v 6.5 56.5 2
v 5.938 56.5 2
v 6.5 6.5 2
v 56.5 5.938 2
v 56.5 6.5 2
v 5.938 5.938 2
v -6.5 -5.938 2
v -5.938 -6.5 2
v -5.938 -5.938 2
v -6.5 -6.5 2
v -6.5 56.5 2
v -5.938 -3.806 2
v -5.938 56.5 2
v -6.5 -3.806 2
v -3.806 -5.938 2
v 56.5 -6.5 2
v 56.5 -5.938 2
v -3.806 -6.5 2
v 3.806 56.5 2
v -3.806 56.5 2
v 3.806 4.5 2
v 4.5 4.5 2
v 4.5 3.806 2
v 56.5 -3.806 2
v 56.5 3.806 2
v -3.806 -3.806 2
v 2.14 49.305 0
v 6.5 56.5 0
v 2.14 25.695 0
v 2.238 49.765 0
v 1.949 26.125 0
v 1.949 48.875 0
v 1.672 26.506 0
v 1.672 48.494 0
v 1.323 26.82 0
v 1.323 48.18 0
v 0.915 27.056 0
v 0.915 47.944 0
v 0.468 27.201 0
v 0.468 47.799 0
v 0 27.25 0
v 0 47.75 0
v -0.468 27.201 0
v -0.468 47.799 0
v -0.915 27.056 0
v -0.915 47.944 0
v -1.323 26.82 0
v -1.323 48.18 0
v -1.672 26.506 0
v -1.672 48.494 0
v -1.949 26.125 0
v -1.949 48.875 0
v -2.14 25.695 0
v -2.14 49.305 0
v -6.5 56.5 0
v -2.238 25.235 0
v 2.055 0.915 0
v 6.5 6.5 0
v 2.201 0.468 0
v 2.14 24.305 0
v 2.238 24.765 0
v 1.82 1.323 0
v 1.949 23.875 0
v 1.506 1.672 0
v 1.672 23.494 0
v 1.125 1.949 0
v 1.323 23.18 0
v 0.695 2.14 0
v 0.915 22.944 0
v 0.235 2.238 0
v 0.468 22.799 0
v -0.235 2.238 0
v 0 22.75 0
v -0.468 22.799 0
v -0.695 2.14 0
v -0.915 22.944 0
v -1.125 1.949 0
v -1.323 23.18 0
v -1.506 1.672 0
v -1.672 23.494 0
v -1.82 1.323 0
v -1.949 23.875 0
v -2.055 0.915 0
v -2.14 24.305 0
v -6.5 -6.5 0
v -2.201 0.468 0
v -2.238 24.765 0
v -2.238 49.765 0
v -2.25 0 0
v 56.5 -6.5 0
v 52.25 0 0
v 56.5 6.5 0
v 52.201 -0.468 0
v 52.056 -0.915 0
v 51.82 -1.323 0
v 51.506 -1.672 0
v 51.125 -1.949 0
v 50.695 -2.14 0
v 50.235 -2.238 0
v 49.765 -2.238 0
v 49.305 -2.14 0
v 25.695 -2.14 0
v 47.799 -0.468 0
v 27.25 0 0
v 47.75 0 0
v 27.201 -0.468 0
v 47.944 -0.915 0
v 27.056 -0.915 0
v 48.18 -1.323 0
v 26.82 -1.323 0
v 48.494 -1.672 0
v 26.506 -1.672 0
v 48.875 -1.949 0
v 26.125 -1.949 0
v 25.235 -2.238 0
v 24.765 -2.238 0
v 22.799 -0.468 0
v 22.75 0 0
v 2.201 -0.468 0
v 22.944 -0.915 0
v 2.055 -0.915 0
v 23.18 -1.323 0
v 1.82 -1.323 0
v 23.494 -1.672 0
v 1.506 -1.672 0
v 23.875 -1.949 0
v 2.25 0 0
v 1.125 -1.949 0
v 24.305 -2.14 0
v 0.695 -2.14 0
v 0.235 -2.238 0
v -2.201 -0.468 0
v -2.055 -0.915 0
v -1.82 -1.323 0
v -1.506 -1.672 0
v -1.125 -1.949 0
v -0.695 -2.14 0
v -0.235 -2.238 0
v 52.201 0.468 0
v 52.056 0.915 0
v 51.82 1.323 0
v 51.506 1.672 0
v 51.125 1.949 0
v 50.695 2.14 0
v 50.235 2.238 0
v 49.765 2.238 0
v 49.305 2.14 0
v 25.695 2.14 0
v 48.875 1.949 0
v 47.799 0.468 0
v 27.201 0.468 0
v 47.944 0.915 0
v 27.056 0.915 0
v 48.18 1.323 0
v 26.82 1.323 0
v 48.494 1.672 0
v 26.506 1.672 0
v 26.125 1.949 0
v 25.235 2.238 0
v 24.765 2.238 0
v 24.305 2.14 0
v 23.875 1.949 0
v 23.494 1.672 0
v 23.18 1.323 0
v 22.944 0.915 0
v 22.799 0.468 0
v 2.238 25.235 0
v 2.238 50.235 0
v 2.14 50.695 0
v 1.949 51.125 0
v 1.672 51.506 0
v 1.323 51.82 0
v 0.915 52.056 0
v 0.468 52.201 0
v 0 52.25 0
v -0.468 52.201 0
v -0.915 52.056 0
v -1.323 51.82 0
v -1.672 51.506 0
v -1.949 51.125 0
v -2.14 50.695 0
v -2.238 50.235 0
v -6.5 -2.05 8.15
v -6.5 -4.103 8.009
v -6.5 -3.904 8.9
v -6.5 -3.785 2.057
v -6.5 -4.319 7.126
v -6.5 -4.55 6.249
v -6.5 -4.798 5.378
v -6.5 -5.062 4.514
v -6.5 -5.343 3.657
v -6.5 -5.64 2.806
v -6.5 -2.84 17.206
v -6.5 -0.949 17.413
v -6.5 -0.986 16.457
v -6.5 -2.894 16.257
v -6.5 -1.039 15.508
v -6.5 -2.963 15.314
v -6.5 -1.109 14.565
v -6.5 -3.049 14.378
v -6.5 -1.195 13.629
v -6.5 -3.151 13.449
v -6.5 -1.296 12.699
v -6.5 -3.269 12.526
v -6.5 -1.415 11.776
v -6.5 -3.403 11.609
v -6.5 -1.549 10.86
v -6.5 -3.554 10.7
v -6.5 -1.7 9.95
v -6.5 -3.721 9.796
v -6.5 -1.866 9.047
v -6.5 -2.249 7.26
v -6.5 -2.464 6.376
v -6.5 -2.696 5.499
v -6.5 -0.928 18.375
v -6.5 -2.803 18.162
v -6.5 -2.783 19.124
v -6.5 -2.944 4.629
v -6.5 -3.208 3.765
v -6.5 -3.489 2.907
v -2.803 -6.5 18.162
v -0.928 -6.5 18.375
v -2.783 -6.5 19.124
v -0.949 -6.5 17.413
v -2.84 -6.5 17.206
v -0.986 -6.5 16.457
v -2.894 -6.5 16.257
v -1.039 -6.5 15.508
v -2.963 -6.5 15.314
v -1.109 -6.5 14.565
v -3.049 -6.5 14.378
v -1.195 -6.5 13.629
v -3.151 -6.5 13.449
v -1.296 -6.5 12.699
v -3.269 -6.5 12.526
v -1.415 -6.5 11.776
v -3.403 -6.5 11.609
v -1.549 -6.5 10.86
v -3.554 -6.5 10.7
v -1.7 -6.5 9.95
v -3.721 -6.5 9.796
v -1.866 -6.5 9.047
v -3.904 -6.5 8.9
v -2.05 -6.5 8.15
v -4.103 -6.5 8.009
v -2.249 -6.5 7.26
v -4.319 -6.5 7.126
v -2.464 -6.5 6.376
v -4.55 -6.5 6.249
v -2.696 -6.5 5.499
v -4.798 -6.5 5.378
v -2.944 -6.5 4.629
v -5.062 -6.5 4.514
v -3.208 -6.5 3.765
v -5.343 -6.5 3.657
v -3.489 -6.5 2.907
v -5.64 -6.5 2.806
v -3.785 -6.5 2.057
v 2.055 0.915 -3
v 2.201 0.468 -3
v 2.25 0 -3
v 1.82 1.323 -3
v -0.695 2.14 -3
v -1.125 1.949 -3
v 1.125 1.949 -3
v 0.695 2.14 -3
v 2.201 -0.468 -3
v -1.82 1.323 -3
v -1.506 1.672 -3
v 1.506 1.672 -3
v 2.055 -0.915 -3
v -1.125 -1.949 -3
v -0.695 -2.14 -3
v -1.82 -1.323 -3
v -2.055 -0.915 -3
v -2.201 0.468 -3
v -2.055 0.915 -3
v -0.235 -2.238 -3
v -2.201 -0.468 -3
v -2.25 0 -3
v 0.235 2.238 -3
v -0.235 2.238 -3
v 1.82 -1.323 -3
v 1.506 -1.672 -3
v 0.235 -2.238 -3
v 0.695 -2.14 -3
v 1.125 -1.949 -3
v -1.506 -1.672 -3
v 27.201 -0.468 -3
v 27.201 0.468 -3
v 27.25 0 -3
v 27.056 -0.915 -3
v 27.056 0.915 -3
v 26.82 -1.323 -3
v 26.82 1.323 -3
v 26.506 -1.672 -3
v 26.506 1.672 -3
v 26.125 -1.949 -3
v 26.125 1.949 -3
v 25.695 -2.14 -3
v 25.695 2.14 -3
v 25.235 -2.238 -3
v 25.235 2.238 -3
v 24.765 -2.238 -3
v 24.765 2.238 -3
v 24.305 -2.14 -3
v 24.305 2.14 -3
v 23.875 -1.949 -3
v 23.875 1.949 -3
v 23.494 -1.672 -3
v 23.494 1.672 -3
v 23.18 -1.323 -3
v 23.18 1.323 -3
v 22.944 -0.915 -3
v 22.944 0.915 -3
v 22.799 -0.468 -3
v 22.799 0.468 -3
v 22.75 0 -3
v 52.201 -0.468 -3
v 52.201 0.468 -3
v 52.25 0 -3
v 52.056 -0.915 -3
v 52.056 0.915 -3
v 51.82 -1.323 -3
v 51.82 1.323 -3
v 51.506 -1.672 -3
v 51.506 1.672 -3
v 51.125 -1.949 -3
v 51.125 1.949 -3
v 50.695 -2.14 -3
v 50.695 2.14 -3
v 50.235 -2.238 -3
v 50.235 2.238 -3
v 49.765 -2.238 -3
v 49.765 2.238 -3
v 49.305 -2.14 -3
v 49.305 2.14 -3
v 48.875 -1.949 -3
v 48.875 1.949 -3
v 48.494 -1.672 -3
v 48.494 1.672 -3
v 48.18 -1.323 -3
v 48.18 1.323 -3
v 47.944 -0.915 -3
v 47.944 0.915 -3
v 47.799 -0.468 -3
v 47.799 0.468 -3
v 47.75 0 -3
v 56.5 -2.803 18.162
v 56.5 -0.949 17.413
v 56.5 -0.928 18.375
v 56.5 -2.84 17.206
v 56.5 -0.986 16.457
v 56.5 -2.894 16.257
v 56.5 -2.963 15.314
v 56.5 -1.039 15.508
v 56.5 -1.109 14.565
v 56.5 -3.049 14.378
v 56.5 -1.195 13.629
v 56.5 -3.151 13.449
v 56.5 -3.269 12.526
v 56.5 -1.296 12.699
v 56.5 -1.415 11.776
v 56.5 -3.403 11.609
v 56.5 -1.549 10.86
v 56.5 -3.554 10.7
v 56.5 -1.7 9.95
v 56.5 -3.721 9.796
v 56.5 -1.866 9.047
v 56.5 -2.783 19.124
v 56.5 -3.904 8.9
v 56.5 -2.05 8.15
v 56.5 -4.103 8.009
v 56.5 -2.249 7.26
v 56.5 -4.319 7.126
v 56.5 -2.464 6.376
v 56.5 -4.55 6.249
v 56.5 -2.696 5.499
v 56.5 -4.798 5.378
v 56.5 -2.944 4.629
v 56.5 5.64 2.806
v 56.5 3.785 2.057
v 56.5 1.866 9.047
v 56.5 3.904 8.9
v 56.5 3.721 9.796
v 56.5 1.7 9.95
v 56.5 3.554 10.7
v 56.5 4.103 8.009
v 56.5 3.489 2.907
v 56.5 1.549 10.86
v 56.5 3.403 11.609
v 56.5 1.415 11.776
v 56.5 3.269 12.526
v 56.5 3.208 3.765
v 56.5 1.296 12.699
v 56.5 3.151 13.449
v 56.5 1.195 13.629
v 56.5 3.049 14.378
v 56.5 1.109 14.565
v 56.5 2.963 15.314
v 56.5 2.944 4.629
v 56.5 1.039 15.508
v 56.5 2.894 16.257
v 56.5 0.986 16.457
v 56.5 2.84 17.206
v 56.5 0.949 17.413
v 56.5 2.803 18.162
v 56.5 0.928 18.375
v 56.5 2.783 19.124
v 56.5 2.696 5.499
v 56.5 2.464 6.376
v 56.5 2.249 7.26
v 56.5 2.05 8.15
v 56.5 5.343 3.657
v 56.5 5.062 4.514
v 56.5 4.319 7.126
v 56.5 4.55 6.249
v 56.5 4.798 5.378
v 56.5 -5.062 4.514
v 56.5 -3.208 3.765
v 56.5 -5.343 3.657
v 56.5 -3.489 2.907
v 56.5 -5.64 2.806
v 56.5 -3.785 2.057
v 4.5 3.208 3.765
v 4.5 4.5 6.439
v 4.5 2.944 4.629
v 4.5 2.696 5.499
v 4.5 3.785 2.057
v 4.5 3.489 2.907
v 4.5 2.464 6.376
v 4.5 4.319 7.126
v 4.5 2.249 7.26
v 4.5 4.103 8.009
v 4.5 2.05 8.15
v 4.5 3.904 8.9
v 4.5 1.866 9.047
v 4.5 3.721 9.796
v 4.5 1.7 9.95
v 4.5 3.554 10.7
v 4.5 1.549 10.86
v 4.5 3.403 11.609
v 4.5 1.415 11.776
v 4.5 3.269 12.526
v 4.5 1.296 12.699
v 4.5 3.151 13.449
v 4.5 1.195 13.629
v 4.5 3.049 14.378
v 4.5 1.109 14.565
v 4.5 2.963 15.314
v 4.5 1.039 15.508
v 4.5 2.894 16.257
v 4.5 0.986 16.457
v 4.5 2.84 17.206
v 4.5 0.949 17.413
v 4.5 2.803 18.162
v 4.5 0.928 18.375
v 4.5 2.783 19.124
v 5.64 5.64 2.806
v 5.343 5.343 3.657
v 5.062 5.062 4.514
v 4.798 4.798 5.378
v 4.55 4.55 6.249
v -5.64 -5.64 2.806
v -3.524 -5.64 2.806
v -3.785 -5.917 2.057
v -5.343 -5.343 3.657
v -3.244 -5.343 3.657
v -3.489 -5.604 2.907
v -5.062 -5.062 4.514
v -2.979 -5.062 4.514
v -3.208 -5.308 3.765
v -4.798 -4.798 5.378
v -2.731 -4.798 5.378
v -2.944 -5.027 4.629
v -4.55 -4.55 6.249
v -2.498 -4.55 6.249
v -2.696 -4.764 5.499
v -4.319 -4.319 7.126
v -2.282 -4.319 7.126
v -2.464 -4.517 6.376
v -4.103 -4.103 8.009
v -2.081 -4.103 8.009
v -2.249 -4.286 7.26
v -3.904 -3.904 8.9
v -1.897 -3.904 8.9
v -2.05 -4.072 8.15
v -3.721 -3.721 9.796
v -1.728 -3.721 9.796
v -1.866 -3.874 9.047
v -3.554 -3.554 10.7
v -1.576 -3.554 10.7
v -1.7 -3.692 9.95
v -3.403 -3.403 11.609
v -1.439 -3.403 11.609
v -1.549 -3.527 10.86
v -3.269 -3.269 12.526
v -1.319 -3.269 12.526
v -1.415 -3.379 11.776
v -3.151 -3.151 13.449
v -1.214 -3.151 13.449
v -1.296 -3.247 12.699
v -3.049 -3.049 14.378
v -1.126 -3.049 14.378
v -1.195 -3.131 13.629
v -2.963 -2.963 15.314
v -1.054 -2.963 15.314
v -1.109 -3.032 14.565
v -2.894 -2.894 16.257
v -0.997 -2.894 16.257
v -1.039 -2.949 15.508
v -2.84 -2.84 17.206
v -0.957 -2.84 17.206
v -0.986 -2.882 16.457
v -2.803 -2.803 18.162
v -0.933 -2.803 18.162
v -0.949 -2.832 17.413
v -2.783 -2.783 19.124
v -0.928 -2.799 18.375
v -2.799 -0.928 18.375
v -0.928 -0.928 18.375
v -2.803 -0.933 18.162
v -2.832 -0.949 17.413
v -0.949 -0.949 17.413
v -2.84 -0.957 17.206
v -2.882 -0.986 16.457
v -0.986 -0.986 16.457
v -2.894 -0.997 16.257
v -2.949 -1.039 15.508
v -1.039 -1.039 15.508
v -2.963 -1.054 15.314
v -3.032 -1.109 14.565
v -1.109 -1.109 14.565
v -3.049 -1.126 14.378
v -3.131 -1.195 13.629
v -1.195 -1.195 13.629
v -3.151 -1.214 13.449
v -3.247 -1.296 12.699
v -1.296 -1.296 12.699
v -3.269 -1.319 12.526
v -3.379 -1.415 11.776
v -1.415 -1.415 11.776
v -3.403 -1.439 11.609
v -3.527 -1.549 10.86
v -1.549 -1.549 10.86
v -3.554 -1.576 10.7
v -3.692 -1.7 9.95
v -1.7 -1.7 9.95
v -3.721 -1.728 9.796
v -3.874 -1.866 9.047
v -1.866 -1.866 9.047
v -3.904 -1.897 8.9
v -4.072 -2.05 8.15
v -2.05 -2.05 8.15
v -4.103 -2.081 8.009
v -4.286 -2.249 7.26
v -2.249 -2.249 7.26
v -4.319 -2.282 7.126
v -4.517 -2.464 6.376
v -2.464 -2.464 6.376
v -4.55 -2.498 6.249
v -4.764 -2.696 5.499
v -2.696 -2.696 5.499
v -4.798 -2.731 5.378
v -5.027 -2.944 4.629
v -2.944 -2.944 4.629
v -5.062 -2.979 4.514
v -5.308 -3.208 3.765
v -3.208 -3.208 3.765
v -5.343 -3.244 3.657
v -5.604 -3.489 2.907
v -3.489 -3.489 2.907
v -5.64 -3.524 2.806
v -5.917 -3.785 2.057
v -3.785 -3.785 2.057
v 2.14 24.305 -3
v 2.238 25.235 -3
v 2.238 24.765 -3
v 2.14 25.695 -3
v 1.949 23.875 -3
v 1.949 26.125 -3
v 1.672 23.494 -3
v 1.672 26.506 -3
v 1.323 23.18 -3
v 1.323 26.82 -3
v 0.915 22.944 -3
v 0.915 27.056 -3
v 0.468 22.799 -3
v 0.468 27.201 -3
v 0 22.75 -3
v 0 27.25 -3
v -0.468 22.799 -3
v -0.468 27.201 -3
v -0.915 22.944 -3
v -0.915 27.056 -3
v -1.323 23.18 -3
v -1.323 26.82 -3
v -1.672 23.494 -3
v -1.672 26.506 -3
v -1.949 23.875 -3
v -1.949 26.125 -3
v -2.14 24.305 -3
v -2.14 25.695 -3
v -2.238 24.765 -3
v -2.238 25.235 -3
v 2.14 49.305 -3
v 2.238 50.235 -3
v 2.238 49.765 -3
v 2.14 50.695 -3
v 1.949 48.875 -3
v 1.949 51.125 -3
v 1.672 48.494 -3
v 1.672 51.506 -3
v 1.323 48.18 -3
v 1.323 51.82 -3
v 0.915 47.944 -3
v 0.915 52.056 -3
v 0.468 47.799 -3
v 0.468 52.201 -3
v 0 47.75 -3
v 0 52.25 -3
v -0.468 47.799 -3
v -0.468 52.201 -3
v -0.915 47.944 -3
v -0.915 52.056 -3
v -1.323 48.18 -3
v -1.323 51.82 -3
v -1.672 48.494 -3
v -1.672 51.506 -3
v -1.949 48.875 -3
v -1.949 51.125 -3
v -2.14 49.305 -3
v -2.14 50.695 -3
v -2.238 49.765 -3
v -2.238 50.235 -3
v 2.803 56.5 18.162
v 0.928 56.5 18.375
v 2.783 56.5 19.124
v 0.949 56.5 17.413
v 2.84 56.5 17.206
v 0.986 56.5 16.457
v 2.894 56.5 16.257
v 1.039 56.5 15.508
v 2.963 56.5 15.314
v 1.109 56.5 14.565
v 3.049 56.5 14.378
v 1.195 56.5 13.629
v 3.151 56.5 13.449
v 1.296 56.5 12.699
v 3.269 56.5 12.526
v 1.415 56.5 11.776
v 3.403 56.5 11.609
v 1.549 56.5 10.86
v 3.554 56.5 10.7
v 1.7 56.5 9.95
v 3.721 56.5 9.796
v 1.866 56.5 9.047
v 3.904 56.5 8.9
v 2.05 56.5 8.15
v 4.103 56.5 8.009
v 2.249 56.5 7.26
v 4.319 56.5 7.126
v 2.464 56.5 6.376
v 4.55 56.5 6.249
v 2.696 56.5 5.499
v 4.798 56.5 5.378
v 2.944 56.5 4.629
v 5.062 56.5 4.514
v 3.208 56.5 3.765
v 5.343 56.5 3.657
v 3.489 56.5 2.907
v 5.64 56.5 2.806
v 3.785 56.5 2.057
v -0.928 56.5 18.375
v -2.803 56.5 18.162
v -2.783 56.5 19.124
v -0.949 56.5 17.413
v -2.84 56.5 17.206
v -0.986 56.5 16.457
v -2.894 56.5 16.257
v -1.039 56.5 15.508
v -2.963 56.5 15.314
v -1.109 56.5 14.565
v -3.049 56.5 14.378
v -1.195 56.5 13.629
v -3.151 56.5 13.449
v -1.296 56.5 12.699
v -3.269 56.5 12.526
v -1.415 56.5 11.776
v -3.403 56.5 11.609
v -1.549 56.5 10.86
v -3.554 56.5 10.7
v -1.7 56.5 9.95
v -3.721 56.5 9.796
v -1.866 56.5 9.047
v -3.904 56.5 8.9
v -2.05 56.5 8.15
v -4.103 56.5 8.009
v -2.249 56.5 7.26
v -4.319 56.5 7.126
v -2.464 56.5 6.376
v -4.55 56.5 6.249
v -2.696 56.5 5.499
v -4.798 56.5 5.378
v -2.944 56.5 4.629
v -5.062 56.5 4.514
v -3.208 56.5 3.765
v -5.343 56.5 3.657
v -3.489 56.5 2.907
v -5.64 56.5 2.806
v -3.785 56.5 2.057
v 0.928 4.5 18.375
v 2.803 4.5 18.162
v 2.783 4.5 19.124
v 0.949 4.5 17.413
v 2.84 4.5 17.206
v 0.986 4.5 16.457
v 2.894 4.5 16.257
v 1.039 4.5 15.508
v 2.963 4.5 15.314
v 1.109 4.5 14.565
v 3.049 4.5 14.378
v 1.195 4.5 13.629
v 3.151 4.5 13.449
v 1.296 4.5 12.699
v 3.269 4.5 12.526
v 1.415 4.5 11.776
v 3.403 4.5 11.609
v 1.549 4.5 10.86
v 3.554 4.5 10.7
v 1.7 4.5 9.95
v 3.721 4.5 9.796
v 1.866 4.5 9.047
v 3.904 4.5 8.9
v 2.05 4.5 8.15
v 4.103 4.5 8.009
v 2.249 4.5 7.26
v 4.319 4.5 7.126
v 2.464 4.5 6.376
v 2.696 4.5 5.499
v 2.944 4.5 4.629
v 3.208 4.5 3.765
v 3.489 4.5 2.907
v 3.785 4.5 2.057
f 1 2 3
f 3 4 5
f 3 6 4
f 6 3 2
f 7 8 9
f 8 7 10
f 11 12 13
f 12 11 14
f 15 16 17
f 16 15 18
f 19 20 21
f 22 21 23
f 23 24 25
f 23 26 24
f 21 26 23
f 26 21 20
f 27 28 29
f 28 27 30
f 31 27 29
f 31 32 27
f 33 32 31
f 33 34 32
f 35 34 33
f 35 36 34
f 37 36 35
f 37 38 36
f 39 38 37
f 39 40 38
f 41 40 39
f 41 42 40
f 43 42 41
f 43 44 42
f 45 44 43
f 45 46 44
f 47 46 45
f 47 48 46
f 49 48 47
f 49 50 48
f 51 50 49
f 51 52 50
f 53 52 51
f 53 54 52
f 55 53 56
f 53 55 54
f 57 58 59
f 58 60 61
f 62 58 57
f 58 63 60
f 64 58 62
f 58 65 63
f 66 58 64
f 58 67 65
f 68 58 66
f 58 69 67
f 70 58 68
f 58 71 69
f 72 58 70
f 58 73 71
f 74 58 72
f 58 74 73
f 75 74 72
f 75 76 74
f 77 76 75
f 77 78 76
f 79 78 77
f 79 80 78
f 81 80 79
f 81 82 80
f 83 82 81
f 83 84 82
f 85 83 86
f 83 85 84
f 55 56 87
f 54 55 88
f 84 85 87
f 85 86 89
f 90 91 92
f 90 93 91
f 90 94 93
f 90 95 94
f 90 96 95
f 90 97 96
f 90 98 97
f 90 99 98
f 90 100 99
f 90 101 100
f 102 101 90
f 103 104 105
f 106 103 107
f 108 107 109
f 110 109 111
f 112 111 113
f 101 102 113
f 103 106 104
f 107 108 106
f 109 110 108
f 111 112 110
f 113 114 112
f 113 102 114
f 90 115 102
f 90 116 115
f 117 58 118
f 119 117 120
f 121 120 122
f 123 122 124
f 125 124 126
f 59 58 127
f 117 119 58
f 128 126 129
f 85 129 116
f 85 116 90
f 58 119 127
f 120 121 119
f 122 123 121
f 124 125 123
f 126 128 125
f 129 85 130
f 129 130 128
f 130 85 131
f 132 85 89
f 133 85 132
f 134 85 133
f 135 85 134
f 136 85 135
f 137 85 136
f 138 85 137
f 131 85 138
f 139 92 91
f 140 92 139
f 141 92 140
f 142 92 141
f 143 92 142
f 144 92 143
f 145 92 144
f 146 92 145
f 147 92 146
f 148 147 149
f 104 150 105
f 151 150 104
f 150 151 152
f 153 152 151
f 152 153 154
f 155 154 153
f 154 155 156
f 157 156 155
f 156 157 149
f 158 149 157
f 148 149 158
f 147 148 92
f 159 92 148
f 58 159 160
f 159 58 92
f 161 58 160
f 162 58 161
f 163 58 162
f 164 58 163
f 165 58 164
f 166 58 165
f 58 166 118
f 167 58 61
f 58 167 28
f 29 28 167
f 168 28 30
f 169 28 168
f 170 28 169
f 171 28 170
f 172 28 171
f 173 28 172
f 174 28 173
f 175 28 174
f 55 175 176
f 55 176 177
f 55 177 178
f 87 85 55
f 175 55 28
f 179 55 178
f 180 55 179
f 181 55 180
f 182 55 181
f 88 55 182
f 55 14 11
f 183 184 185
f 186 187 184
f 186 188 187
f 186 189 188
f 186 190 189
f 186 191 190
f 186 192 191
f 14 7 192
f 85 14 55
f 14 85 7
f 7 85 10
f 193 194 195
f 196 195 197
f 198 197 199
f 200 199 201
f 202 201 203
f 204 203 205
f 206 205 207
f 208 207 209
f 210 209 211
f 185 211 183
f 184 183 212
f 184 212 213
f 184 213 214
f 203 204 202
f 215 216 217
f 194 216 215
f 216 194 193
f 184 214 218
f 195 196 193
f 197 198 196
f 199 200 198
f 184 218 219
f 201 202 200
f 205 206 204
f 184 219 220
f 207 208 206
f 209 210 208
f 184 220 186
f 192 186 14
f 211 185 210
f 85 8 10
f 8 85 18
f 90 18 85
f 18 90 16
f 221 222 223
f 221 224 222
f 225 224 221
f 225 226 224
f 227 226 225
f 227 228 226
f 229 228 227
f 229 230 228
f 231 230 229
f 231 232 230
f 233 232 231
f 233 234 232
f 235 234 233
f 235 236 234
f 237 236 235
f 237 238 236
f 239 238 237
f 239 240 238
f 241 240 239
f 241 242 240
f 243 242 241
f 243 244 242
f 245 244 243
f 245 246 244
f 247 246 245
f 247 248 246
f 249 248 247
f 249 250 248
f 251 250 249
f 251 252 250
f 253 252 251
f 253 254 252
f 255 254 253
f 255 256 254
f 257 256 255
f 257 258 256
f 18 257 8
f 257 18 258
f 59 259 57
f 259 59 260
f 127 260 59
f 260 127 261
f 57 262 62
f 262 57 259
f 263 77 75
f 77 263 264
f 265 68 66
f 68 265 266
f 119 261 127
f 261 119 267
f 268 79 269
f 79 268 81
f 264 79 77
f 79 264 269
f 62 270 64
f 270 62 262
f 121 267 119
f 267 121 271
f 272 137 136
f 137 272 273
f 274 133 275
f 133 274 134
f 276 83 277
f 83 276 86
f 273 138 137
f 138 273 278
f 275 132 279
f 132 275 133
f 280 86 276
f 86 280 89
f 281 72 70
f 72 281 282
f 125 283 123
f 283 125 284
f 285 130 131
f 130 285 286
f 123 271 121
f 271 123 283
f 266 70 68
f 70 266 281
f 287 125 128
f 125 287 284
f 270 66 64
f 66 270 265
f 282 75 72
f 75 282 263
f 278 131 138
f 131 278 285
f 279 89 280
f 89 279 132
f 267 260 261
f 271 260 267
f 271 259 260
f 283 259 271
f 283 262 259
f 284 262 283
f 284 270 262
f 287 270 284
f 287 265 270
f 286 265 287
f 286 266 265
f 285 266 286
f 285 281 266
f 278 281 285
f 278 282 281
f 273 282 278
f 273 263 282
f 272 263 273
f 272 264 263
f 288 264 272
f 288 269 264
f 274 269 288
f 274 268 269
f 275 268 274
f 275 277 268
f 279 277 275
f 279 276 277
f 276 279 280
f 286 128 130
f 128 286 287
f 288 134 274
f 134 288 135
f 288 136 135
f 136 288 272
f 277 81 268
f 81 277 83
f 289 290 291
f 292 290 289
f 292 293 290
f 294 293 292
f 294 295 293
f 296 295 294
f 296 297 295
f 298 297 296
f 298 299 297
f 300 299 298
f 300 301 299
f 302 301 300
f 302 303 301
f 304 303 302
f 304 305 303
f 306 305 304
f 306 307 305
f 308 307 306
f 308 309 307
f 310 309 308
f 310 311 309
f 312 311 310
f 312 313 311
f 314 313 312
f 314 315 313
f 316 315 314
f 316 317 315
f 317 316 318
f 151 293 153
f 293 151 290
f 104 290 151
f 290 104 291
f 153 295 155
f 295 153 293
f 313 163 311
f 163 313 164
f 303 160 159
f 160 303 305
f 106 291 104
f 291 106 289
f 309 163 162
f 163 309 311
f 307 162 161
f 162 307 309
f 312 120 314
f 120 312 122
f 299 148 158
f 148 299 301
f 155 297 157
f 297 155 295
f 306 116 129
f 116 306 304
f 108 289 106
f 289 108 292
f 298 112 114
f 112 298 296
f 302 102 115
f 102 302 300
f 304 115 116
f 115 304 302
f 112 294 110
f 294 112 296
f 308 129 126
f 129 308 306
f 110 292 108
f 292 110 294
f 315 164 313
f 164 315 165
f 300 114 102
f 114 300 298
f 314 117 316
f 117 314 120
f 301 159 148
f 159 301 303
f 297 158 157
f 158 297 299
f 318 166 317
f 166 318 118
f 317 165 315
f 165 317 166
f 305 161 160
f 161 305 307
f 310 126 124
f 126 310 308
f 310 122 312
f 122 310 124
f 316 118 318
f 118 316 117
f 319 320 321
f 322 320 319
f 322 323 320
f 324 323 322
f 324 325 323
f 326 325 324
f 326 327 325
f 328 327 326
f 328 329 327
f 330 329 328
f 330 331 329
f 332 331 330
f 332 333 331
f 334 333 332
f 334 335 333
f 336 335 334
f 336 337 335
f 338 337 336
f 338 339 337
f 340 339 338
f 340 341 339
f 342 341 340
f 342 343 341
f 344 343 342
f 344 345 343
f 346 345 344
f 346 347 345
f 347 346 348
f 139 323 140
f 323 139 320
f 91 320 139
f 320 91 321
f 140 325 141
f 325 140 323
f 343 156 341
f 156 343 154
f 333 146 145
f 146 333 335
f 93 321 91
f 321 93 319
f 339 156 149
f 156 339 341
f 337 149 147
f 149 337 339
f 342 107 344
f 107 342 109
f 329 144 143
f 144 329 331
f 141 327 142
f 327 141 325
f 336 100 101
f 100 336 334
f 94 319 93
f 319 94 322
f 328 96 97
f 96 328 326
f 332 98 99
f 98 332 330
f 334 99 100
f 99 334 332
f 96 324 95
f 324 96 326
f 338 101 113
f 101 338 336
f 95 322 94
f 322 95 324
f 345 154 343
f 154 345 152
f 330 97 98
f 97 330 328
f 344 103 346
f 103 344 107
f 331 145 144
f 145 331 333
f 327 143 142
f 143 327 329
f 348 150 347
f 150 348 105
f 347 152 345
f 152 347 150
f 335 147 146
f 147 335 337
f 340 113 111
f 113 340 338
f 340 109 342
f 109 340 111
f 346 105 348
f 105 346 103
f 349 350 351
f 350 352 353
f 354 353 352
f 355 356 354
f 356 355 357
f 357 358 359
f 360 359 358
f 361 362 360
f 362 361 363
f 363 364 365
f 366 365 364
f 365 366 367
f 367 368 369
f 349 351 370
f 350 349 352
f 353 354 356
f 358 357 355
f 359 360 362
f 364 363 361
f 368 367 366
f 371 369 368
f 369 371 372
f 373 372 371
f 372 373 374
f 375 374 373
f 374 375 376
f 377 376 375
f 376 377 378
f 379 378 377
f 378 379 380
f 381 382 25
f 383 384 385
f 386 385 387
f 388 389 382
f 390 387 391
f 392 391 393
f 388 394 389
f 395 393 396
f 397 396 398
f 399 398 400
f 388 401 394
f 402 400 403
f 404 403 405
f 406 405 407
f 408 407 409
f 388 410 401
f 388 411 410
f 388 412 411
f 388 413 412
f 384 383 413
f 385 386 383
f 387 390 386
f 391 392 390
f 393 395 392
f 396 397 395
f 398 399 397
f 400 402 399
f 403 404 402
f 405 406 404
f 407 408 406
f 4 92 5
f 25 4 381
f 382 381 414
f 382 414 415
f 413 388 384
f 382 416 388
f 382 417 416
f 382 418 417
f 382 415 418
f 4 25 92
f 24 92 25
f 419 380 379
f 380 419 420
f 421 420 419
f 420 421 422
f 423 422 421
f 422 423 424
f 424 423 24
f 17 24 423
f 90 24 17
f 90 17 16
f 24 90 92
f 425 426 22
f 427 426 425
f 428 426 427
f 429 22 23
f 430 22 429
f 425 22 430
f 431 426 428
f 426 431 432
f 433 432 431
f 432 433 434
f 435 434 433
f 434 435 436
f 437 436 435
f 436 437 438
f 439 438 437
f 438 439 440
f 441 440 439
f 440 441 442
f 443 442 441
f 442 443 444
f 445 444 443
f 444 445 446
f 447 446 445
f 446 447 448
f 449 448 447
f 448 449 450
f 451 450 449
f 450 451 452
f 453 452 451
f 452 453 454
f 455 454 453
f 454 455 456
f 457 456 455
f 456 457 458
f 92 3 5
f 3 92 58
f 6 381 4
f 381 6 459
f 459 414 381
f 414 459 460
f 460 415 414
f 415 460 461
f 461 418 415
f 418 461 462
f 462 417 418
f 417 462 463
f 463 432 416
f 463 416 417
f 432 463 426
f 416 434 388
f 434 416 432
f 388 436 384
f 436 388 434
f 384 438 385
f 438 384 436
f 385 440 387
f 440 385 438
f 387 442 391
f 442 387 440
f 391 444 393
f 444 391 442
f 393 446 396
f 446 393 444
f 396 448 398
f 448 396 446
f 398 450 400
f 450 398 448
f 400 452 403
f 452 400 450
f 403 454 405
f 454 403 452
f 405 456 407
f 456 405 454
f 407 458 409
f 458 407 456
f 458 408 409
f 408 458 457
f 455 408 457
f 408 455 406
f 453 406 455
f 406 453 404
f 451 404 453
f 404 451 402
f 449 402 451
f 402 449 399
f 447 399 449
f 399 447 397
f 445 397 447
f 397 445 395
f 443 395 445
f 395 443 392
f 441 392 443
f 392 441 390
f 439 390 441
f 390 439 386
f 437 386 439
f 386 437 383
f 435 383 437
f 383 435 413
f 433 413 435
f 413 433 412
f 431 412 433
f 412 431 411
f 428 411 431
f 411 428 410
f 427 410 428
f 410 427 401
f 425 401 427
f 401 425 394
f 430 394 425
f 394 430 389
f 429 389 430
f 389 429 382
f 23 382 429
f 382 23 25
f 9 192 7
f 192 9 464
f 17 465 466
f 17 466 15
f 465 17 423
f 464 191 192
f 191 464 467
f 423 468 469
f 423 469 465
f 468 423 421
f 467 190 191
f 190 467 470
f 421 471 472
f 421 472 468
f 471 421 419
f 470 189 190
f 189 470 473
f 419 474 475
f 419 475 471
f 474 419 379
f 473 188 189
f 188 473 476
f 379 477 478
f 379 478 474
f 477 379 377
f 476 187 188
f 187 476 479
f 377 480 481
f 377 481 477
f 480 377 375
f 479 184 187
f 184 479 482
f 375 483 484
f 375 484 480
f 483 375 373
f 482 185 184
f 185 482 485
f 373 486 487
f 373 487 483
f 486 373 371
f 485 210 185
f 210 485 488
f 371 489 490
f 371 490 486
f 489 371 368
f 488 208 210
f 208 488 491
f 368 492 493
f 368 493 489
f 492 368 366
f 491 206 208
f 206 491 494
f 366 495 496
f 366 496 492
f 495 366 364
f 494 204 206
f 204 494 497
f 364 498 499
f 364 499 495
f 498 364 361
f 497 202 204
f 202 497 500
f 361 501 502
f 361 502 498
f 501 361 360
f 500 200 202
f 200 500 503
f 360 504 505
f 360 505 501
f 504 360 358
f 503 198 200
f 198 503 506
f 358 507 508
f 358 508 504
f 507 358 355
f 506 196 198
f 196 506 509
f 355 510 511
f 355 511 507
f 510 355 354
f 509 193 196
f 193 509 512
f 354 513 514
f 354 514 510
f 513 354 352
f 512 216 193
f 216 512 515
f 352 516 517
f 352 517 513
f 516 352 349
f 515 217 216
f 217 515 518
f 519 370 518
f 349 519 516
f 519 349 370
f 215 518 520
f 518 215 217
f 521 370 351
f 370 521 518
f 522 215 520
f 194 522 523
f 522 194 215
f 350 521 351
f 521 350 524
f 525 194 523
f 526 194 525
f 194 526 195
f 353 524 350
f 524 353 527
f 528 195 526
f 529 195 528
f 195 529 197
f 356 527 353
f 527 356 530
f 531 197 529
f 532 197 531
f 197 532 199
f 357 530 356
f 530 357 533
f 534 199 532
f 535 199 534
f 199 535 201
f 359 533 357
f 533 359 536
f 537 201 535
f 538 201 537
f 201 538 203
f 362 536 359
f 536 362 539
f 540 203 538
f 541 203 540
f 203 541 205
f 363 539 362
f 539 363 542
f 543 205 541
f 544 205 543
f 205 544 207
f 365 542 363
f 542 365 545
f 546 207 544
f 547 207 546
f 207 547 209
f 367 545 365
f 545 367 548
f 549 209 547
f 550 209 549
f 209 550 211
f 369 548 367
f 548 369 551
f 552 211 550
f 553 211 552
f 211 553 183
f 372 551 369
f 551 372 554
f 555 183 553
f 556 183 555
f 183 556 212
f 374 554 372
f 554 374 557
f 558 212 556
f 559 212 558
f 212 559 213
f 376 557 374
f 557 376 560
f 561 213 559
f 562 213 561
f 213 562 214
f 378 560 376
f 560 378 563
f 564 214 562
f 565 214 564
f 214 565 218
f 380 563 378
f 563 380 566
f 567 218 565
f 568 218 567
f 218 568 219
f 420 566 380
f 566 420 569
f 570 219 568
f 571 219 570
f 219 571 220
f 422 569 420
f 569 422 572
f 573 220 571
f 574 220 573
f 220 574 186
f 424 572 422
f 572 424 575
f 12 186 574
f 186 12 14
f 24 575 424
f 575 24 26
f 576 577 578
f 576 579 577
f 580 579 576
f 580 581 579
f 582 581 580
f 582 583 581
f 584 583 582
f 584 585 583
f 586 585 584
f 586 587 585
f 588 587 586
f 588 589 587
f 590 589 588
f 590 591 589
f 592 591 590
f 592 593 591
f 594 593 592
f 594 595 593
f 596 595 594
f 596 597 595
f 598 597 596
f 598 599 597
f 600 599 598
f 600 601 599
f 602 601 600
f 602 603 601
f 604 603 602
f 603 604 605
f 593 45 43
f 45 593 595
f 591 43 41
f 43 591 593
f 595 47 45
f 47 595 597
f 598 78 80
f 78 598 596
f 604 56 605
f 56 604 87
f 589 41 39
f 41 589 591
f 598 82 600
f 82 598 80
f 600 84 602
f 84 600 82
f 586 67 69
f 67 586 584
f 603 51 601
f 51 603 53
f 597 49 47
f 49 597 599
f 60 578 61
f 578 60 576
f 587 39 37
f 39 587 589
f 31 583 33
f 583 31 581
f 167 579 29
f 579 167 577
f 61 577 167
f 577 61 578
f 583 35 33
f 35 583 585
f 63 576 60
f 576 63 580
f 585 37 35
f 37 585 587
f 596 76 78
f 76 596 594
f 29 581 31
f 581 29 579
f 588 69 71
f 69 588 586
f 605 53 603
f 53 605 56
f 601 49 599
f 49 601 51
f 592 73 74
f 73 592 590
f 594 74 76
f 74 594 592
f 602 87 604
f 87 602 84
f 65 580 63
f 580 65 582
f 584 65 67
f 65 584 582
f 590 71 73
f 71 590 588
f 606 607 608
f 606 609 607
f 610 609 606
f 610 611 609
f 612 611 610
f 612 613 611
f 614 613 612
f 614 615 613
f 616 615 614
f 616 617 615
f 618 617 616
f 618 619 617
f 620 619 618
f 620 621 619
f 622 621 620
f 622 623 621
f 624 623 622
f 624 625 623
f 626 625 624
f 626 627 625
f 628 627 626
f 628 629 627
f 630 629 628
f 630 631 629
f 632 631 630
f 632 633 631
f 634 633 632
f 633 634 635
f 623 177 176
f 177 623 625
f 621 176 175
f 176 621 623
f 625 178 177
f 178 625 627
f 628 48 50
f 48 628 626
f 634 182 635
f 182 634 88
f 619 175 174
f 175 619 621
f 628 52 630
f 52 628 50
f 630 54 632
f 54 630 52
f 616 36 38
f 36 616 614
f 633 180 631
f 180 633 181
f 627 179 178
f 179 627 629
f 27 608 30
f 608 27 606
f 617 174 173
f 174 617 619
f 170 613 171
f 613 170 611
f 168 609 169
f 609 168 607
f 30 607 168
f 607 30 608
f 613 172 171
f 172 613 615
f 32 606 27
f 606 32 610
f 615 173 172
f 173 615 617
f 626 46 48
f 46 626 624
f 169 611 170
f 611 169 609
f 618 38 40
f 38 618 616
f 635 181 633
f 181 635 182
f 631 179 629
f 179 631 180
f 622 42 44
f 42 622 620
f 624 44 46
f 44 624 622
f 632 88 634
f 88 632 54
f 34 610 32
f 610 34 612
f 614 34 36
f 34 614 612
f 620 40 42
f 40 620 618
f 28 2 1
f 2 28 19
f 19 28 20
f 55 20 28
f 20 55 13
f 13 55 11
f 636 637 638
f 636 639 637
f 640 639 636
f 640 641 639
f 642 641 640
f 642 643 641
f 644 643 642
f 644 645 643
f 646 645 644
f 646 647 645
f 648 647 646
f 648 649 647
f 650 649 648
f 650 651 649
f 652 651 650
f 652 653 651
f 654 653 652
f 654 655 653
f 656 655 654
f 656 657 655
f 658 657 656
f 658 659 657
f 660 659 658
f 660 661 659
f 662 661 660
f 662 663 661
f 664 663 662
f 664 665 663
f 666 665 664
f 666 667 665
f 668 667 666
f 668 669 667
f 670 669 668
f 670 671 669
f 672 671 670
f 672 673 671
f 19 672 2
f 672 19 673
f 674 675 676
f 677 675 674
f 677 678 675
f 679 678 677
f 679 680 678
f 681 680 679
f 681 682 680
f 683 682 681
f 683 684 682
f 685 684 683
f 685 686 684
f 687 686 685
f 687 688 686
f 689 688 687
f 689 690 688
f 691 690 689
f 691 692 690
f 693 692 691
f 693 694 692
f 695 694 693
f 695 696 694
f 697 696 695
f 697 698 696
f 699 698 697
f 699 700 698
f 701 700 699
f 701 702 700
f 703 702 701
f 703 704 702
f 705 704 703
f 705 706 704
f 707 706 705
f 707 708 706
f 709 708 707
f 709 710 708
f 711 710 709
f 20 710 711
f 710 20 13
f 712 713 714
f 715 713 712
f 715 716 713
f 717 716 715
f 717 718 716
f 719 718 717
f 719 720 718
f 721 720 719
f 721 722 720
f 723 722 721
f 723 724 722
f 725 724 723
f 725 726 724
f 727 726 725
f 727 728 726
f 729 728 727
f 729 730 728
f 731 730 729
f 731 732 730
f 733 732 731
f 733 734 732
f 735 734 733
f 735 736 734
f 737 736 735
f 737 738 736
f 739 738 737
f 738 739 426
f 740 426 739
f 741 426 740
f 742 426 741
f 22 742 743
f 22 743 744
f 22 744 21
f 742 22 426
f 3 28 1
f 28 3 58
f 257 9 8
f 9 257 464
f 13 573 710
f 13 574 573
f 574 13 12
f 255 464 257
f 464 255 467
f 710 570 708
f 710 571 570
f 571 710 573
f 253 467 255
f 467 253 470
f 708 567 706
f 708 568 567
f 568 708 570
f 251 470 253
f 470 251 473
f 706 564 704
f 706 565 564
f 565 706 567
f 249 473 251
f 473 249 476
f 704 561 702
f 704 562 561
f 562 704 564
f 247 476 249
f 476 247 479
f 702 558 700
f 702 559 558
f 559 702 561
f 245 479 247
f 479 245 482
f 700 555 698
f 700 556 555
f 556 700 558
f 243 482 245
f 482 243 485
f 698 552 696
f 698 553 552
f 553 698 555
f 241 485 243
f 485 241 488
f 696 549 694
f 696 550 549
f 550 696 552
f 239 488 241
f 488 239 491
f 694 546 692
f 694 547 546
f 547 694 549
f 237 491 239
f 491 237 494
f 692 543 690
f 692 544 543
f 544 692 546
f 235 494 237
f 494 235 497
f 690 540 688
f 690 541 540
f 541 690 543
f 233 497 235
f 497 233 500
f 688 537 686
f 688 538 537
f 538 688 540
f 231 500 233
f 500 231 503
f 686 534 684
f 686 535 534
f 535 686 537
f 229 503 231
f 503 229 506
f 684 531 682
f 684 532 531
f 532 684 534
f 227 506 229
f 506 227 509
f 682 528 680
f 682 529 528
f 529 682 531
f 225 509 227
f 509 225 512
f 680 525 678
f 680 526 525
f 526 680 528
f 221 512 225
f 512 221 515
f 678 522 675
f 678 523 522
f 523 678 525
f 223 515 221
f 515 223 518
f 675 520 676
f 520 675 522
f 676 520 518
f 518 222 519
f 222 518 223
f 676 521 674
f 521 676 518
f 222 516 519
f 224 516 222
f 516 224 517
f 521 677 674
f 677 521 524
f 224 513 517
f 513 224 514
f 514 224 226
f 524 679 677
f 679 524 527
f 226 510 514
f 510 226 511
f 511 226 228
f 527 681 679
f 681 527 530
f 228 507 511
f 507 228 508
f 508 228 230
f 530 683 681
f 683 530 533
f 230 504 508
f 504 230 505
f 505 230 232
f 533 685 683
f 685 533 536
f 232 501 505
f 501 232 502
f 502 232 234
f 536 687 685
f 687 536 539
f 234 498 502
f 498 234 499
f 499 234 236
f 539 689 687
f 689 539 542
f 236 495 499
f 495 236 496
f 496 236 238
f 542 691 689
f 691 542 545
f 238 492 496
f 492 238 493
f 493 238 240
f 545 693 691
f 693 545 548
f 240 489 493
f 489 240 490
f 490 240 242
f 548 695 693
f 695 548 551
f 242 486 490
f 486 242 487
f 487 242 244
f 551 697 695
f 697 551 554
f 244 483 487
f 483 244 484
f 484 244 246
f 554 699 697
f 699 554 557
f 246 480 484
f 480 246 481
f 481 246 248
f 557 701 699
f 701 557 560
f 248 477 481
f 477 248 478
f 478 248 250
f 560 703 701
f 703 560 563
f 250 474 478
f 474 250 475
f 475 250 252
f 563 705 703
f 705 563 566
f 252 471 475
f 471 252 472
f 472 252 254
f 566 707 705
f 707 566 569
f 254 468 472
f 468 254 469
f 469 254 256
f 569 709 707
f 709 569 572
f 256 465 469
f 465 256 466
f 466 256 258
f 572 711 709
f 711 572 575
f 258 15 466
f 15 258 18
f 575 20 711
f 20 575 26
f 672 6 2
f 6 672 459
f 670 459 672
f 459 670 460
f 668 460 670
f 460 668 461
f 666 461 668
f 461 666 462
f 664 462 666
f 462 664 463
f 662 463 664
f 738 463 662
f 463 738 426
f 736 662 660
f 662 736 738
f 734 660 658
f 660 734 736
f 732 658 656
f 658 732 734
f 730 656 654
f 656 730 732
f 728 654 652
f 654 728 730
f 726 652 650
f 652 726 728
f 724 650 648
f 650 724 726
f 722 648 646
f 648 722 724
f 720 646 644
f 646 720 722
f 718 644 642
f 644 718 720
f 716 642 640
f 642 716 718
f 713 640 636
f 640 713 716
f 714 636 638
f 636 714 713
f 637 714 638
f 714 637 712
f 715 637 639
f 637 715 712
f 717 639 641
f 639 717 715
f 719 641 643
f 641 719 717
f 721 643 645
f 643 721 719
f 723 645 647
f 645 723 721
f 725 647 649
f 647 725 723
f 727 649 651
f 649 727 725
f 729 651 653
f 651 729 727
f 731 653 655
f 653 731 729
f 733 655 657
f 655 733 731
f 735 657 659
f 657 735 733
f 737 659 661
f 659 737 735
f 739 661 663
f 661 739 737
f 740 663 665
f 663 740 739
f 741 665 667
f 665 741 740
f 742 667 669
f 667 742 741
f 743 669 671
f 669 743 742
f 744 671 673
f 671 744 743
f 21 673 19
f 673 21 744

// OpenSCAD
// file: common.scad
CENTER_SIZE = 9;
SLEEVE_REACH = 56.5;
GROOVE_WIDTH = 9;
WALL_HEIGHT = 10;
WALL_THICKNESS = 2;
BASE_THICKNESS = 2;
TOTAL_WIDTH = GROOVE_WIDTH + 2 * WALL_THICKNESS;
SLEEVE_LENGTH = SLEEVE_REACH - CENTER_SIZE/2;
DOWEL_DIAMETER = 4.5;
DOWEL_DEPTH = 3;
CARDBOARD_THICKNESS = 2;
GROOVE_BOTTOM = CARDBOARD_THICKNESS;
CURVE_POWER = 2;
CURVE_POINTS = 20;
TILT_ANGLE_EXTRA = 5;
FLEXIBLE_WALL_HEIGHT = WALL_HEIGHT * 2;
function wall_curve(z) =
    GROOVE_BOTTOM/2 + (GROOVE_WIDTH/2 - GROOVE_BOTTOM/2) * pow(z/(FLEXIBLE_WALL_HEIGHT - BASE_THICKNESS), CURVE_POWER);
module curved_wall_profile(side) {
    wall_h = FLEXIBLE_WALL_HEIGHT - BASE_THICKNESS;
    points_inner = [for (i = [0:CURVE_POINTS])
        [wall_curve(i * wall_h / CURVE_POINTS) * side,
         i * wall_h / CURVE_POINTS]
    ];
    points_outer = [for (i = [0:CURVE_POINTS])
        [(wall_curve(i * wall_h / CURVE_POINTS) + WALL_THICKNESS) * side,
         i * wall_h / CURVE_POINTS]
    ];
    all_points = concat(
        [[points_inner[0][0], 0]],
        points_inner,
        [points_outer[len(points_outer)-1]],
        [for (i = [len(points_outer)-1:-1:0]) points_outer[i]],
        [[points_outer[0][0], 0]]
    );
    polygon(all_points);
}
module draw_regular_wall_base(width) {
    translate([0, 0, BASE_THICKNESS])
        cube([width, WALL_THICKNESS, WALL_HEIGHT - BASE_THICKNESS]);
}
module draw_flexible_wall_base(width) {
    tilt_angle = atan((GROOVE_WIDTH/2 - GROOVE_BOTTOM/2) / (FLEXIBLE_WALL_HEIGHT - BASE_THICKNESS)) + TILT_ANGLE_EXTRA;
    rotate([0, 0, 90])
        rotate([tilt_angle + 6, 0, 0])
            rotate([90, 0, 90])
                linear_extrude(height = width)
                    curved_wall_profile(1);
}
module draw_center_base(with_dowel = false) {
    union() {
        translate([-TOTAL_WIDTH/2, -TOTAL_WIDTH/2, 0])
            cube([TOTAL_WIDTH, TOTAL_WIDTH, BASE_THICKNESS]);
        if (with_dowel) {
            translate([0, 0, -DOWEL_DEPTH])
                cylinder(h=DOWEL_DEPTH, d=DOWEL_DIAMETER, $fn=30);
        }
    }
}
module place_regular_center_wall(side) {
    if (side == 0) {
        translate([CENTER_SIZE/2 + WALL_THICKNESS, -TOTAL_WIDTH/2, 0])
            rotate([0, 0, 90])
                draw_regular_wall_base(TOTAL_WIDTH);
    } else if (side == 1) {
        translate([-TOTAL_WIDTH/2, CENTER_SIZE/2, 0])
            draw_regular_wall_base(TOTAL_WIDTH);
    } else if (side == 2) {
        translate([-CENTER_SIZE/2, -TOTAL_WIDTH/2, 0])
            rotate([0, 0, 90])
                draw_regular_wall_base(TOTAL_WIDTH);
    } else if (side == 3) {
        translate([-TOTAL_WIDTH/2, -CENTER_SIZE/2 - WALL_THICKNESS, 0])
            draw_regular_wall_base(TOTAL_WIDTH);
    }
}
module place_flexible_center_wall(side) {
    if (side == 0) {
        translate([CENTER_SIZE/2 - WALL_THICKNESS/2, TOTAL_WIDTH/2, 0])
            rotate([0, 0, 180])
                draw_flexible_wall_base(TOTAL_WIDTH);
    } else if (side == 1) {
        translate([-TOTAL_WIDTH/2, CENTER_SIZE/2 - WALL_THICKNESS/2, 0])
            rotate([0, 0, 270])
                draw_flexible_wall_base(TOTAL_WIDTH);
    } else if (side == 2) {
        translate([-CENTER_SIZE/2 + WALL_THICKNESS/2, -TOTAL_WIDTH/2, 0])
            draw_flexible_wall_base(TOTAL_WIDTH);
    } else if (side == 3) {
        translate([CENTER_SIZE/2 + WALL_THICKNESS, -TOTAL_WIDTH/2 + WALL_THICKNESS + WALL_THICKNESS/2, 0])
            rotate([0, 0, 90])
                draw_flexible_wall_base(TOTAL_WIDTH);
    }
}
module place_center_wall(side, wall_type = "regular") {
    if (wall_type == "regular") {
        place_regular_center_wall(side);
    } else if (wall_type == "flexible") {
        place_flexible_center_wall(side);
    }
}
module draw_sleeve_base(with_dowel = false) {
    union() {
        translate([0, -TOTAL_WIDTH/2, 0])
            cube([SLEEVE_LENGTH, TOTAL_WIDTH, BASE_THICKNESS]);
        if (with_dowel) {
            translate([25 - CENTER_SIZE/2, 0, -DOWEL_DEPTH])
                cylinder(h=DOWEL_DEPTH, d=DOWEL_DIAMETER, $fn=30);
            translate([50 - CENTER_SIZE/2, 0, -DOWEL_DEPTH])
                cylinder(h=DOWEL_DEPTH, d=DOWEL_DIAMETER, $fn=30);
        }
    }
}
module draw_regular_sleeve_wall(wall_side) {
    y_offset = (wall_side == "left") ? -TOTAL_WIDTH/2 : TOTAL_WIDTH/2 - WALL_THICKNESS;
    translate([0, y_offset, 0])
        draw_regular_wall_base(SLEEVE_LENGTH);
}
module draw_flexible_sleeve_wall(side) {
    if (side == "left") {
        translate([0, TOTAL_WIDTH/2 - WALL_THICKNESS/2 - WALL_THICKNESS, 0])
            rotate([0, 0, 270])
                draw_flexible_wall_base(SLEEVE_LENGTH);
    } else if (side == "right") {
        translate([SLEEVE_LENGTH, -TOTAL_WIDTH/2 + WALL_THICKNESS + WALL_THICKNESS/2, 0])
            rotate([0, 0, 90])
                draw_flexible_wall_base(SLEEVE_LENGTH);
    }
}
module draw_sleeve_wall(wall_side, wall_type = "regular") {
    if (wall_type == "regular") {
        draw_regular_sleeve_wall(wall_side);
    } else if (wall_type == "flexible") {
        draw_flexible_sleeve_wall(wall_side);
    }
}
module draw_full_sleeve(with_dowel = false, wall_type = "regular") {
    union() {
        draw_sleeve_base(with_dowel);
        draw_sleeve_wall("left", wall_type);
        draw_sleeve_wall("right", wall_type);
    }
}
module place_sleeve(side, with_dowel = false, wall_type = "regular") {
    if (side == 0) {
        translate([CENTER_SIZE/2, 0, 0])
            draw_full_sleeve(with_dowel, wall_type);
    } else if (side == 1) {
        rotate([0, 0, 90])
            translate([CENTER_SIZE/2, 0, 0])
                draw_full_sleeve(with_dowel, wall_type);
    } else if (side == 2) {
        rotate([0, 0, 180])
            translate([CENTER_SIZE/2, 0, 0])
                draw_full_sleeve(with_dowel, wall_type);
    } else if (side == 3) {
        rotate([0, 0, 270])
            translate([CENTER_SIZE/2, 0, 0])
                draw_full_sleeve(with_dowel, wall_type);
    }
}
module add_dowel(x, y, dowel_diameter, dowel_depth) {
    translate([x, y, -dowel_depth])
        cylinder(h=dowel_depth, d=dowel_diameter, $fn=30);
}
// main file
use <common.scad>

union() {
    draw_center_base(with_dowel = true);
    place_center_wall(2, "flexible");
    place_center_wall(3, "flexible");
    place_sleeve(0, with_dowel = true, wall_type = "flexible");
    place_sleeve(1, with_dowel = true, wall_type = "flexible");
}
